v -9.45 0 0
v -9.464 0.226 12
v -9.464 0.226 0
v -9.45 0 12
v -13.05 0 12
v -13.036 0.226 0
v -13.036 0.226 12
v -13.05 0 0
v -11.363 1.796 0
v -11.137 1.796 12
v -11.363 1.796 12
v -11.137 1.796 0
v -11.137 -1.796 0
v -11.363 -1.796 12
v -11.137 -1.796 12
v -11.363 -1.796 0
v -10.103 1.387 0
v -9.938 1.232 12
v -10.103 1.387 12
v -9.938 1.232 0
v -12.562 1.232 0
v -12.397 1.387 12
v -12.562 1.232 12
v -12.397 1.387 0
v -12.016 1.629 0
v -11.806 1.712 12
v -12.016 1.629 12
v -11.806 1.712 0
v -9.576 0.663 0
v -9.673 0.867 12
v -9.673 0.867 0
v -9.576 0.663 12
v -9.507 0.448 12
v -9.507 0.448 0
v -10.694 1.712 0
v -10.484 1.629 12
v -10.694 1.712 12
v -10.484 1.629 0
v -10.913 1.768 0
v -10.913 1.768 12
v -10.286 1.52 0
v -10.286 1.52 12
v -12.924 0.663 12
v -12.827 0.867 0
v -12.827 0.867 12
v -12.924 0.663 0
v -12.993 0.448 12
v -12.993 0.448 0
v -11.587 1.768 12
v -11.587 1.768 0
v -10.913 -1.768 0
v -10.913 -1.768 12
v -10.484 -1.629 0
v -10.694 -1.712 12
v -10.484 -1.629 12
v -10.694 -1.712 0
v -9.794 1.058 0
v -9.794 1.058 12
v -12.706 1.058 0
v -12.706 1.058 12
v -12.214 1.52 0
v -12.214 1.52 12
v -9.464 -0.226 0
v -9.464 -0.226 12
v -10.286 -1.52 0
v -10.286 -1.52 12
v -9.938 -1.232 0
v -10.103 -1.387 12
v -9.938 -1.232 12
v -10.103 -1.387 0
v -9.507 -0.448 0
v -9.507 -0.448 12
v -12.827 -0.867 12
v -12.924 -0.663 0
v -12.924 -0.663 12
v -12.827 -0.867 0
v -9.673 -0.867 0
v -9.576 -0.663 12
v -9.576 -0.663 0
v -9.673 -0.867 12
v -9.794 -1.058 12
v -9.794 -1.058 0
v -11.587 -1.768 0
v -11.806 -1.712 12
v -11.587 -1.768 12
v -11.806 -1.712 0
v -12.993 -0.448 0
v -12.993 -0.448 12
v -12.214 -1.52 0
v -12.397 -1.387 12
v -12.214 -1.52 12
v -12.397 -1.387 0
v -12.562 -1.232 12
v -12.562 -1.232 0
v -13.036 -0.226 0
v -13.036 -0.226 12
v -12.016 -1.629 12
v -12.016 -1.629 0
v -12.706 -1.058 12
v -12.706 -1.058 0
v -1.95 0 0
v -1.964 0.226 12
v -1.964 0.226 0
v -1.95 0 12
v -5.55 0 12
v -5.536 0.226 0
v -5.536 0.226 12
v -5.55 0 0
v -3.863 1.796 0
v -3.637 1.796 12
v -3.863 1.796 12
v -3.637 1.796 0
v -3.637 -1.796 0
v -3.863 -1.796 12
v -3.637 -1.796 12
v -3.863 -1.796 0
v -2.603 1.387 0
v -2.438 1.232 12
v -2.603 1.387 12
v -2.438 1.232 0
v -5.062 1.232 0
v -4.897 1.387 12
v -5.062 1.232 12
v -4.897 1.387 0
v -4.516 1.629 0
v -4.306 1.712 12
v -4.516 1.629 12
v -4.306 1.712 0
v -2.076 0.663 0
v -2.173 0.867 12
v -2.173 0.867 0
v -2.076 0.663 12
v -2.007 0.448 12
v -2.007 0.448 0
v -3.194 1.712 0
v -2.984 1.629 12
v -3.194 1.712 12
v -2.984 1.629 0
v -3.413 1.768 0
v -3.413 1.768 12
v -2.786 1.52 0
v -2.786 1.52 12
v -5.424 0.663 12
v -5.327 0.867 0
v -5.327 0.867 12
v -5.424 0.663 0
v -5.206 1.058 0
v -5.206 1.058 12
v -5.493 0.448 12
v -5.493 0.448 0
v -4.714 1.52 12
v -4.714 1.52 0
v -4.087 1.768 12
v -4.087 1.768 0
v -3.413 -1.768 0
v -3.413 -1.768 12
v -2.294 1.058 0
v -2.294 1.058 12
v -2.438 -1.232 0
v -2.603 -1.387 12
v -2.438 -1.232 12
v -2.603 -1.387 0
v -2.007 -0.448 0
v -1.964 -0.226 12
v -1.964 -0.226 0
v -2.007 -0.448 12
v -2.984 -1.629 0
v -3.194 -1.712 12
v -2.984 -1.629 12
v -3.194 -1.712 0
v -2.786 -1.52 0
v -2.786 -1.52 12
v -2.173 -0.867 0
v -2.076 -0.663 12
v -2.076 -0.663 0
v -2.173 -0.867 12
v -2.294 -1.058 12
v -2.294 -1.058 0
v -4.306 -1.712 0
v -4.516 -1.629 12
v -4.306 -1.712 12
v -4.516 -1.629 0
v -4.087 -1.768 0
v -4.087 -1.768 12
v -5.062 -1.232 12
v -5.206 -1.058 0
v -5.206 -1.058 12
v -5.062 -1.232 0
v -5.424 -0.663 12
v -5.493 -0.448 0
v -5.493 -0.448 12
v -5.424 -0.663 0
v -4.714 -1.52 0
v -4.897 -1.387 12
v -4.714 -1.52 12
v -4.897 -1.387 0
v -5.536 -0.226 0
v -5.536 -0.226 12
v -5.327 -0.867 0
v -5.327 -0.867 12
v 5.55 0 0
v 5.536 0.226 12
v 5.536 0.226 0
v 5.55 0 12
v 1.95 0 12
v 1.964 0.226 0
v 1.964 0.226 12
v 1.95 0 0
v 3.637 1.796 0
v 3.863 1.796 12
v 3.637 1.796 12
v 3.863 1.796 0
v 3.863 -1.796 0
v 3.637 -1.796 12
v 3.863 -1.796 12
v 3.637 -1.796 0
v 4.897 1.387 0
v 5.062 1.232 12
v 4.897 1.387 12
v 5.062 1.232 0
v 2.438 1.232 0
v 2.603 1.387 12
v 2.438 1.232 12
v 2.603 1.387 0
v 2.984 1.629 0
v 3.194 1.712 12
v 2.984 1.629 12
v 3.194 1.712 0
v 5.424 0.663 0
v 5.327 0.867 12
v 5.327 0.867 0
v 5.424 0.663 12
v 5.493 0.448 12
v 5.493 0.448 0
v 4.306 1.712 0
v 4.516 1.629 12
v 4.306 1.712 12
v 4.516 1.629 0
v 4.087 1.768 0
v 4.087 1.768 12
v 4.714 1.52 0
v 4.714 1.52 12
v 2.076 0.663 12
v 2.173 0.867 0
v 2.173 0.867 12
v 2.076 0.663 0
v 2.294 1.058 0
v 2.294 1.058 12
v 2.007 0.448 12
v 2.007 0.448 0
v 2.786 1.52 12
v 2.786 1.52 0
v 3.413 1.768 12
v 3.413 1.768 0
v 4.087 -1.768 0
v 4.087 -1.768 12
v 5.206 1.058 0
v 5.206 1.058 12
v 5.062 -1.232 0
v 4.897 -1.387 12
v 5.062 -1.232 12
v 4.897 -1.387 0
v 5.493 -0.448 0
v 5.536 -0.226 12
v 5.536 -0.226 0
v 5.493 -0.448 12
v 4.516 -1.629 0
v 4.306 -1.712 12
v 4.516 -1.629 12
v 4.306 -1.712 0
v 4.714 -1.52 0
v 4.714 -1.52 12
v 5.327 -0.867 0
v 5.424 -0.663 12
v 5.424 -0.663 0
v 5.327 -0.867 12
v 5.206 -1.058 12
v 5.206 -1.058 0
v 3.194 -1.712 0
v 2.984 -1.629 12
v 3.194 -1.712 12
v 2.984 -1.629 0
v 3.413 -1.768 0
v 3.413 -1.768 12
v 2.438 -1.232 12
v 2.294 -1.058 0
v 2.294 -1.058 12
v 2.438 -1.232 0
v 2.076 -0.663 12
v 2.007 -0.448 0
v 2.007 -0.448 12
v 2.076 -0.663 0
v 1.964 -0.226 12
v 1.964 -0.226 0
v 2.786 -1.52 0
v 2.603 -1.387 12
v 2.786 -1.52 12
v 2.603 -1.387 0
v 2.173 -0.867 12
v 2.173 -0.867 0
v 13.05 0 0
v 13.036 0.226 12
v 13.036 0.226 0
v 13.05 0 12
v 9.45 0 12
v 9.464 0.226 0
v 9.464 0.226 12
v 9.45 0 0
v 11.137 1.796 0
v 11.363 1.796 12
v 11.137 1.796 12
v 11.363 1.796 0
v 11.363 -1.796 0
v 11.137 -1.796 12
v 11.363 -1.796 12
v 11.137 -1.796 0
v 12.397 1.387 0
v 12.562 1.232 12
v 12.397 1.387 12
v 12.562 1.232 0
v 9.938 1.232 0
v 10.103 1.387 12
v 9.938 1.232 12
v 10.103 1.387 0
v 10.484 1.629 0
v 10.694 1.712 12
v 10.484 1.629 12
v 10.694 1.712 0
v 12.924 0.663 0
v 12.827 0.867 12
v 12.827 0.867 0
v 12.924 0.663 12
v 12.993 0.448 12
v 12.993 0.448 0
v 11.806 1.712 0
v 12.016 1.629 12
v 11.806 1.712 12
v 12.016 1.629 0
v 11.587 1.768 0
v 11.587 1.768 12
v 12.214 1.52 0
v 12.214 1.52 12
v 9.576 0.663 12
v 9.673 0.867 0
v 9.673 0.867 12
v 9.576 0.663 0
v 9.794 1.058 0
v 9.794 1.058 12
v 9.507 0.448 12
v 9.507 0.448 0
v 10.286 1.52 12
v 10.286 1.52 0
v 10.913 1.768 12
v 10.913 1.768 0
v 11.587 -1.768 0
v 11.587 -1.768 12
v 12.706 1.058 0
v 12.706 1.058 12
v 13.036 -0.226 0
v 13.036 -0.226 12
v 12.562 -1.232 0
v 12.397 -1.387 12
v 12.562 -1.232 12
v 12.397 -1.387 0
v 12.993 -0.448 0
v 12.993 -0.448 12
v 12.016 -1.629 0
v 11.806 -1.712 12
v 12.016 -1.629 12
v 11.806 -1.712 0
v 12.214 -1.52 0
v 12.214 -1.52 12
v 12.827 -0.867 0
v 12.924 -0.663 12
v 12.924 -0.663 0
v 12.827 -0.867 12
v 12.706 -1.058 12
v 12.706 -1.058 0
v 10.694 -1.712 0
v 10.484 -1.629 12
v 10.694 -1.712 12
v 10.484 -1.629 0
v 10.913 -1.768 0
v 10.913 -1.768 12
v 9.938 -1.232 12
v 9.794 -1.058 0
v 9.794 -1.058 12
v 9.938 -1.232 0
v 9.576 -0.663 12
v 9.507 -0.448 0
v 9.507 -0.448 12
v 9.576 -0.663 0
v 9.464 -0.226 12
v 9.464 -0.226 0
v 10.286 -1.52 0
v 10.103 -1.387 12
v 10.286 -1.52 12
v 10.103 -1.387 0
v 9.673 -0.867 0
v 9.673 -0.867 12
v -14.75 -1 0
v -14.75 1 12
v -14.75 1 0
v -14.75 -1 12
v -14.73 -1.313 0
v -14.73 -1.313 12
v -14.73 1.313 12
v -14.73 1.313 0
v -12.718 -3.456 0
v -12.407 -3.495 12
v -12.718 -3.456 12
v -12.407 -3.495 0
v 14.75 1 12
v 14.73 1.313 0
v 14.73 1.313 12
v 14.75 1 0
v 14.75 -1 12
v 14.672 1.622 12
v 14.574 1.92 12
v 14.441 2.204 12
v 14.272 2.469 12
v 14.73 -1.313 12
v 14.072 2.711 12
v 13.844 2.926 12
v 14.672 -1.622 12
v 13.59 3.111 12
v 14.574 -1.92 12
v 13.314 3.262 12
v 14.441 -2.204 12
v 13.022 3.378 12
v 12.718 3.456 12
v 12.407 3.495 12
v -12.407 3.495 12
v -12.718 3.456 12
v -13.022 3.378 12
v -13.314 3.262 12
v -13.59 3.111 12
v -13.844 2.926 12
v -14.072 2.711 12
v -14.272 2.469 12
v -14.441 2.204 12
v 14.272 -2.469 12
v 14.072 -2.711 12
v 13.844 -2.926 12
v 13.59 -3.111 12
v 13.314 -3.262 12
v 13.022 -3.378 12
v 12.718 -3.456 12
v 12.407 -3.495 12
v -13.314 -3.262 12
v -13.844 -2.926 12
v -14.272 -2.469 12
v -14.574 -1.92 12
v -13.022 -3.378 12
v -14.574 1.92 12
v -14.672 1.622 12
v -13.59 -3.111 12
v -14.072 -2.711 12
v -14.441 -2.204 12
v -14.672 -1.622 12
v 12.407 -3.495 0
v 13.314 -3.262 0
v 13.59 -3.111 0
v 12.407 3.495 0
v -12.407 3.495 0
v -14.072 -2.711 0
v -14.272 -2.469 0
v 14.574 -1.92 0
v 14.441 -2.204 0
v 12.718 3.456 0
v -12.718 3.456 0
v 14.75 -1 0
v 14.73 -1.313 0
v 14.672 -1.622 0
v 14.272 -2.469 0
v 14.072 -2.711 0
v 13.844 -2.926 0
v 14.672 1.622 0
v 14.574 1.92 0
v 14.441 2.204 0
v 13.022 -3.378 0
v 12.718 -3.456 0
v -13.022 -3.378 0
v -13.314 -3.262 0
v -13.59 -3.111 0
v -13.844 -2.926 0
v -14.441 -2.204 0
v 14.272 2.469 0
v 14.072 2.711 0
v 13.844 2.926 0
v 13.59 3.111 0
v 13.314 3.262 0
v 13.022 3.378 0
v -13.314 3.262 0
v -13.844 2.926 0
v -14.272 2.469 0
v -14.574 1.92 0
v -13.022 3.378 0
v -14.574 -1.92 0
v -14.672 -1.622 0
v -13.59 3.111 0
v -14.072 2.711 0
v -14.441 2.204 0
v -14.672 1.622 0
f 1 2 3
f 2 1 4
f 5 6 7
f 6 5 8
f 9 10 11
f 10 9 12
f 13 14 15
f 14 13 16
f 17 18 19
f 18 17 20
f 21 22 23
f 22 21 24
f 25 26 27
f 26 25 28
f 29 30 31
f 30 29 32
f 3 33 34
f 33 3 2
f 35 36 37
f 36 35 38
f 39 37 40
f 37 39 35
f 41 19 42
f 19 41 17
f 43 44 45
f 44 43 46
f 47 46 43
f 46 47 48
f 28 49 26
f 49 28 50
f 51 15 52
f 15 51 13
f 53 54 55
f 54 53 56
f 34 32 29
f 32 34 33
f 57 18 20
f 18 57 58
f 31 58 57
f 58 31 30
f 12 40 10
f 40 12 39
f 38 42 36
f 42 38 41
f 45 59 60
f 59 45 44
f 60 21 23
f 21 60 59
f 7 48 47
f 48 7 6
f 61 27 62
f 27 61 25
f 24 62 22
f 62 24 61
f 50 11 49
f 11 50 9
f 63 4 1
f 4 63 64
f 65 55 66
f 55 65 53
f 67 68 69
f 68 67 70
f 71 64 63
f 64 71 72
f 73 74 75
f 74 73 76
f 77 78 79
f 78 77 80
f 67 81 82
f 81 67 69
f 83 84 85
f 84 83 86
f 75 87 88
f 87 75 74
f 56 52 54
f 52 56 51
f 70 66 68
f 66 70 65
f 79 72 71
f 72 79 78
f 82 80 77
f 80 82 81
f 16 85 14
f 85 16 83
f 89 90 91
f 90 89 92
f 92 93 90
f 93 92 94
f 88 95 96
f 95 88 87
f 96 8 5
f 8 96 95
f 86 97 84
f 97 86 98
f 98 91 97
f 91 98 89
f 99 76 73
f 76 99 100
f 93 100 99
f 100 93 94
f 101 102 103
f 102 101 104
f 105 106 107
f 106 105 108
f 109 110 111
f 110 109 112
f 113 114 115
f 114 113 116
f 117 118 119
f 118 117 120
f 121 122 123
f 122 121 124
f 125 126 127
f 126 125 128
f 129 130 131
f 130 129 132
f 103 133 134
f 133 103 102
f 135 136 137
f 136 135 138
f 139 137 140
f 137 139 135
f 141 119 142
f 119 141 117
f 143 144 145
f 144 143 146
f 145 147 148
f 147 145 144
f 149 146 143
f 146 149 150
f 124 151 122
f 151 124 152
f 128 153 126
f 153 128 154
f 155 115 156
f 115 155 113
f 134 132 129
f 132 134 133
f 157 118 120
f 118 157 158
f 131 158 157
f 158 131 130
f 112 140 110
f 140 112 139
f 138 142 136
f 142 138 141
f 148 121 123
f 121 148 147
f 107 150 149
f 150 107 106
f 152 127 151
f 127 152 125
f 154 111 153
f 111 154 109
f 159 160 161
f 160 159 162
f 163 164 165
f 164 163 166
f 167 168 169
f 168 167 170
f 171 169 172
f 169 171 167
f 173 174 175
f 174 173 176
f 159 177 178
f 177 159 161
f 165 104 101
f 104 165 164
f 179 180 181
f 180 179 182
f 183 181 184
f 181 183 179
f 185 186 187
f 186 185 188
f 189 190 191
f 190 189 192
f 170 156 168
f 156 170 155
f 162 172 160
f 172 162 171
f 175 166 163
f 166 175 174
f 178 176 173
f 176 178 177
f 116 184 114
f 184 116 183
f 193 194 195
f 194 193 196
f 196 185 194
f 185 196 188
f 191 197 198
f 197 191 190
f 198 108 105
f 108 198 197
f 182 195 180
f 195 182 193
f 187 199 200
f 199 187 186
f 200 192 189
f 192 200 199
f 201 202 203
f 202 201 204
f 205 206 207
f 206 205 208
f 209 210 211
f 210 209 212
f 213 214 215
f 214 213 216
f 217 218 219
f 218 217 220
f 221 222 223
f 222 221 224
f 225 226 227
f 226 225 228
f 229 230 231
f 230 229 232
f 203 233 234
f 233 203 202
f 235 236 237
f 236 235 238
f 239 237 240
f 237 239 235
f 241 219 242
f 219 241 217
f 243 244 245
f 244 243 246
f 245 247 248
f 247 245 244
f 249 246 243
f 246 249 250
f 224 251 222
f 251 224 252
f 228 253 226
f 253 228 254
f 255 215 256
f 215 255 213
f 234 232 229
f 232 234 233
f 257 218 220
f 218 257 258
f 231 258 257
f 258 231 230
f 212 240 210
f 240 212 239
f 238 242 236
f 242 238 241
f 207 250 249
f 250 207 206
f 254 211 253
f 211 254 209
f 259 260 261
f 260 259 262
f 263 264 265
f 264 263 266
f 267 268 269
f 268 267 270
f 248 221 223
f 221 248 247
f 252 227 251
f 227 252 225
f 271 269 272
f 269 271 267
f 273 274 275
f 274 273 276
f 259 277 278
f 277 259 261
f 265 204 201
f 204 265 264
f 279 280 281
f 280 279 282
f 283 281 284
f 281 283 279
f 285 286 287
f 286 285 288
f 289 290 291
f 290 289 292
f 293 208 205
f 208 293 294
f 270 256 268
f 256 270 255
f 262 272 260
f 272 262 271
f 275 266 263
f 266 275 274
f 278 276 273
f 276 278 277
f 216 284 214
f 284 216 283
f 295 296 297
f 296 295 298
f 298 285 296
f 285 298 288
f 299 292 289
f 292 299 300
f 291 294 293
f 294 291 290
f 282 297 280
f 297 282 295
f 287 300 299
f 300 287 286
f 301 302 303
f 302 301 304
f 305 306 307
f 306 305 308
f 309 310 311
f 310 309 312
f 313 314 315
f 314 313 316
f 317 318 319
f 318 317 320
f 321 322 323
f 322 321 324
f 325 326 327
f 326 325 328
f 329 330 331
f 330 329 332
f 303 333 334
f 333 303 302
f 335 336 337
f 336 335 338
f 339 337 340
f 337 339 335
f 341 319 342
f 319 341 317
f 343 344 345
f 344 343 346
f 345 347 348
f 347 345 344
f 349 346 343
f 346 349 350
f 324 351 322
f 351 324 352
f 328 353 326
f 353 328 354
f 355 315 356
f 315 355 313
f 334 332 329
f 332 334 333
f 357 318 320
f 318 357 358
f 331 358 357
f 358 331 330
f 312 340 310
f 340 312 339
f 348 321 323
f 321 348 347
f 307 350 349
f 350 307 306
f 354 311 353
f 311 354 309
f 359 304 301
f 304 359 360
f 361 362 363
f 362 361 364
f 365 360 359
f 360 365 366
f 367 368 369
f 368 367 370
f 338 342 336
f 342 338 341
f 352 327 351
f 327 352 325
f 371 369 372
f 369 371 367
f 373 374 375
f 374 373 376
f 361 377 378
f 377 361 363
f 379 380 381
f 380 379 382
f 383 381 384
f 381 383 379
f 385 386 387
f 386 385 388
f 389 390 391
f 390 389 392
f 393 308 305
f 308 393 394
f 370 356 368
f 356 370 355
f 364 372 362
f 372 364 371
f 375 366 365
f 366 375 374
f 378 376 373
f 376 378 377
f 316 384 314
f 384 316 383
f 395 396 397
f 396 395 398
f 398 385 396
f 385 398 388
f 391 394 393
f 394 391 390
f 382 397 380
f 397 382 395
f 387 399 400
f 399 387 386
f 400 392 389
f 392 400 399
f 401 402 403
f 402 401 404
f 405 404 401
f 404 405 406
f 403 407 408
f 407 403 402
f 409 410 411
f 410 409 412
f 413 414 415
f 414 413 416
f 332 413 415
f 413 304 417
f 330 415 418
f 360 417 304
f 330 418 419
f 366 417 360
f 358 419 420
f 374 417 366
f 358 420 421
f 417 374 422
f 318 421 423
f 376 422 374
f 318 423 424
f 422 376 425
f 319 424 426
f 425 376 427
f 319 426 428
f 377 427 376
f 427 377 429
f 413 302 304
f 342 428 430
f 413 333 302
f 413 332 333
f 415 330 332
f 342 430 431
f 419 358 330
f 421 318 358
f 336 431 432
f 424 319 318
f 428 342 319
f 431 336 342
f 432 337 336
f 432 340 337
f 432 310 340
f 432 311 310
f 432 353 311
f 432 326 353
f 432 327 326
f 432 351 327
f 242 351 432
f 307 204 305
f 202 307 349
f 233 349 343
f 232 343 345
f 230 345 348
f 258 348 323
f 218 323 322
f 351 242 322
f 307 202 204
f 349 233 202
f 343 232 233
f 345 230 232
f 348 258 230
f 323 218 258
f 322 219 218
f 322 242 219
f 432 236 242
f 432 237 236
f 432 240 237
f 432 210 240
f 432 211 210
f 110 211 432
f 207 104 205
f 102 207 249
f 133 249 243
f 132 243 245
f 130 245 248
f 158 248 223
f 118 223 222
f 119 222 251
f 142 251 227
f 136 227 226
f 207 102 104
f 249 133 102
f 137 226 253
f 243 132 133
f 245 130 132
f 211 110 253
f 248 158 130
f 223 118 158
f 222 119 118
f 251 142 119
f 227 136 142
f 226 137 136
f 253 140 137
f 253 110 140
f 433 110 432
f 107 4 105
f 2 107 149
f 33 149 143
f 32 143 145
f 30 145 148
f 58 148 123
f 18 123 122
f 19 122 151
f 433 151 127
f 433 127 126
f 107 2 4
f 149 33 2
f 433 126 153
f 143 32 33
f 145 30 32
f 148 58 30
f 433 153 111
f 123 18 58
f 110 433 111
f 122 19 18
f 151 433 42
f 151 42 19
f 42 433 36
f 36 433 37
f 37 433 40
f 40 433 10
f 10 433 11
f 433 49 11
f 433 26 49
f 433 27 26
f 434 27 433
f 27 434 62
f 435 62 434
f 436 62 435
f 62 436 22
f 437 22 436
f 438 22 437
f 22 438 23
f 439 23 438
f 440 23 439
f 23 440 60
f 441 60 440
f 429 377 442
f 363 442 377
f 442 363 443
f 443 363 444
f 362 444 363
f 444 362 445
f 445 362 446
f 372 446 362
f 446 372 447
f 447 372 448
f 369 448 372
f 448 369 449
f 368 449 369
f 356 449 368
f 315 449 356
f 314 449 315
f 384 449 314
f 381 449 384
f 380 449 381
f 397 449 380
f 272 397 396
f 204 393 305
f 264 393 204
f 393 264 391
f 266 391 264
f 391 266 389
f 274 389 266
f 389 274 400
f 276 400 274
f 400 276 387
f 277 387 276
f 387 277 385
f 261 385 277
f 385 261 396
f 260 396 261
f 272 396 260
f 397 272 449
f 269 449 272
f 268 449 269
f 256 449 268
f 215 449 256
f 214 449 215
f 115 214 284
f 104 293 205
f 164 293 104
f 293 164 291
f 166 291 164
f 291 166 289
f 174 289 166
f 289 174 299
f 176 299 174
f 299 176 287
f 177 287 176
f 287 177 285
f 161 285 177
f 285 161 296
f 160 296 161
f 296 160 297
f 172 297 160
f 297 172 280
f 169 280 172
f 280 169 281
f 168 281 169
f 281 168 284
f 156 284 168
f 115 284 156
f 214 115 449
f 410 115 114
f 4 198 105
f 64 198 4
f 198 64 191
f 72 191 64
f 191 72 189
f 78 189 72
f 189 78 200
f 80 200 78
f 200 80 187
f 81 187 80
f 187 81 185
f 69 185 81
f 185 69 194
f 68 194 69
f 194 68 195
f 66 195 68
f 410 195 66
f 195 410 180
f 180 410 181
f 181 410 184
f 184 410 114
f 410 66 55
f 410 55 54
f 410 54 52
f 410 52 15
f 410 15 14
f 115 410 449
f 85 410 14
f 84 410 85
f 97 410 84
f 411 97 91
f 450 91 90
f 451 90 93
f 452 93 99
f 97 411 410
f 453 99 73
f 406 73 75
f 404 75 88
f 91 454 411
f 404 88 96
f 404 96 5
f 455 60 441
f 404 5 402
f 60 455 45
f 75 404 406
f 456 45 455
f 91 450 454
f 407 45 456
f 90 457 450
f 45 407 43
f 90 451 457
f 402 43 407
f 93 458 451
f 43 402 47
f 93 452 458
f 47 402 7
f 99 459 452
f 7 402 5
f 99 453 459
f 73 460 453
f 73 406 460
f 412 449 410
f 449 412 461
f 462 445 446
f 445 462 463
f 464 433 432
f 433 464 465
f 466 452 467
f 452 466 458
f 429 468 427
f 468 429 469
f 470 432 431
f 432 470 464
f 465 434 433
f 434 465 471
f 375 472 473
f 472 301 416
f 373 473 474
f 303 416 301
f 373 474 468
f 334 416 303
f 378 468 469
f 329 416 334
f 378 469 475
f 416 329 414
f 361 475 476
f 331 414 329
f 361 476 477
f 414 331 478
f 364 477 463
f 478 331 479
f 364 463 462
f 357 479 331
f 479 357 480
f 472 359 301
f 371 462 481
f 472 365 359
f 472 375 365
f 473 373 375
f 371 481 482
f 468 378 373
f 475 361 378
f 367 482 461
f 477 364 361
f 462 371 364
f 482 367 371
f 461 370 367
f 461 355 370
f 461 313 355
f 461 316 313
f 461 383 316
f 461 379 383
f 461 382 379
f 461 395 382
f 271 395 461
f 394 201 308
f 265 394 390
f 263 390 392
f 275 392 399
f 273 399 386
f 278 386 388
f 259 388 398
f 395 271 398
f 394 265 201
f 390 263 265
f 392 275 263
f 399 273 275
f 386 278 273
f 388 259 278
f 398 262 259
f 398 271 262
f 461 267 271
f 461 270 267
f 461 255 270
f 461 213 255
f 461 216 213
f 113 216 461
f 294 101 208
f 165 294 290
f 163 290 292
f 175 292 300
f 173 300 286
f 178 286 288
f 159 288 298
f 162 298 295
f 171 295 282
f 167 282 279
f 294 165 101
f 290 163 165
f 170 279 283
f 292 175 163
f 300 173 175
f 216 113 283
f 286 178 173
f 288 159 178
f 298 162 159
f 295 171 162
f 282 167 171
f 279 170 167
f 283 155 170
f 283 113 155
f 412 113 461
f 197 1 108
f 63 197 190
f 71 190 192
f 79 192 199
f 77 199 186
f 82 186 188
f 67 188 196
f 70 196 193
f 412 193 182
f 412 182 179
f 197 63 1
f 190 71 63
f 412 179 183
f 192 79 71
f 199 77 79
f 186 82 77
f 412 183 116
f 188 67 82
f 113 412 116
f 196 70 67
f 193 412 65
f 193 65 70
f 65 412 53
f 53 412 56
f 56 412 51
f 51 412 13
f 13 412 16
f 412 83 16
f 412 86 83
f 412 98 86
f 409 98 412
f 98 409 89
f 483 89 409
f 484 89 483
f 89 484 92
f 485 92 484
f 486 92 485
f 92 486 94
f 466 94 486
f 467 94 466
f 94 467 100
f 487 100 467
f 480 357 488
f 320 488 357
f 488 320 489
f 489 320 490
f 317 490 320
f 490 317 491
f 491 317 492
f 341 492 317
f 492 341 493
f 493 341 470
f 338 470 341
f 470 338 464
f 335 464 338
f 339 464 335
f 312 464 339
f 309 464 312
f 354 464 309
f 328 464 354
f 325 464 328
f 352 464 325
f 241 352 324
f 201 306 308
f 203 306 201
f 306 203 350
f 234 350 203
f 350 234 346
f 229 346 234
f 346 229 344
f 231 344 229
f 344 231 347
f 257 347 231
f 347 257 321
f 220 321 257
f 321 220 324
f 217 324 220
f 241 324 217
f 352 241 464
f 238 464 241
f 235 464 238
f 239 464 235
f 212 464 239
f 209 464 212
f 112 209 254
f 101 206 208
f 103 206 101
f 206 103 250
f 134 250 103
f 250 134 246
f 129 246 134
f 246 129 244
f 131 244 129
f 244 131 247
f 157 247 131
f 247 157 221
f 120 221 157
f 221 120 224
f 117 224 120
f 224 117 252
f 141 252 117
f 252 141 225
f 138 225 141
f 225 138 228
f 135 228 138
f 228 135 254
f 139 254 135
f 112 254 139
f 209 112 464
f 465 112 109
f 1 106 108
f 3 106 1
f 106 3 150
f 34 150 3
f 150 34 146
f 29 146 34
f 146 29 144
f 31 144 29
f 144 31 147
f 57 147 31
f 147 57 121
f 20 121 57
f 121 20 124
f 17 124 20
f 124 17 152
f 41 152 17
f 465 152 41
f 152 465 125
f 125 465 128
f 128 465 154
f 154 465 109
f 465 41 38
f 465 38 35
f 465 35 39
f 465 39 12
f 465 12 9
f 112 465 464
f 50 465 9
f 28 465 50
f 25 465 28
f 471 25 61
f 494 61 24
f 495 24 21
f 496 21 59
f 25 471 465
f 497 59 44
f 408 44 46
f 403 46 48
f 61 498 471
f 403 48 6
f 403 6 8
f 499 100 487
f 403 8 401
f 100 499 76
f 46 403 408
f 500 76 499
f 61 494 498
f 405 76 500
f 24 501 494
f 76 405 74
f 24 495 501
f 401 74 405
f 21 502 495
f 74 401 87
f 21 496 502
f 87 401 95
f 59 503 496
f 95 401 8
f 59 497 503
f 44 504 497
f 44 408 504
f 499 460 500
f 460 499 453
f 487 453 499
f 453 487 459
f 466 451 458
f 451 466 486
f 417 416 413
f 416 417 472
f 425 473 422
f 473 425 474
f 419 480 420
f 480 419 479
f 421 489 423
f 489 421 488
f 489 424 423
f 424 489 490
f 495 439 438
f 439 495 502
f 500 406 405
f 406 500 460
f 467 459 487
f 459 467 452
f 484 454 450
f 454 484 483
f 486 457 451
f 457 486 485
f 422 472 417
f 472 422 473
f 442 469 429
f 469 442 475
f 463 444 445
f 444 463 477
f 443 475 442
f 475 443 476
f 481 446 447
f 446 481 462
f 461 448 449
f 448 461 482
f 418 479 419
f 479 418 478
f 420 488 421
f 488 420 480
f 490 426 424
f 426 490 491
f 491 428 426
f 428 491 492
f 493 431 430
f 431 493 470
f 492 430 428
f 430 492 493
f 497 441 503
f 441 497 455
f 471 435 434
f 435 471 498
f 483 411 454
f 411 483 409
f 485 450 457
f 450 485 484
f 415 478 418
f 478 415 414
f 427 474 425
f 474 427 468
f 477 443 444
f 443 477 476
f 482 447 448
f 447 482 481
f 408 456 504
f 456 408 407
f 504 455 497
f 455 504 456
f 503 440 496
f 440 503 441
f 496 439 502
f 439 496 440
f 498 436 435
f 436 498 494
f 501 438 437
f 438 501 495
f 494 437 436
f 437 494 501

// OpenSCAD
$fn = 50;


difference() {
	union() {
		translate(v = [0, 0, 0]) {
			rotate(a = [0, 0, 0]) {
				hull() {
					translate(v = [-12.2500000000, 1.0000000000, 0]) {
						rotate(a = [0, 0, 0]) {
							translate(v = [0, 0, 0]) {
								rotate(a = [0, 0, 0]) {
									cylinder(h = 12, r = 2.5000000000);
								}
							}
						}
					}
					translate(v = [12.2500000000, 1.0000000000, 0]) {
						rotate(a = [0, 0, 0]) {
							translate(v = [0, 0, 0]) {
								rotate(a = [0, 0, 0]) {
									cylinder(h = 12, r = 2.5000000000);
								}
							}
						}
					}
					translate(v = [-12.2500000000, -1.0000000000, 0]) {
						rotate(a = [0, 0, 0]) {
							translate(v = [0, 0, 0]) {
								rotate(a = [0, 0, 0]) {
									cylinder(h = 12, r = 2.5000000000);
								}
							}
						}
					}
					translate(v = [12.2500000000, -1.0000000000, 0]) {
						rotate(a = [0, 0, 0]) {
							translate(v = [0, 0, 0]) {
								rotate(a = [0, 0, 0]) {
									cylinder(h = 12, r = 2.5000000000);
								}
							}
						}
					}
				}
			}
		}
	}
	union() {
		translate(v = [-11.2500000000, 0.0000000000, 0]) {
			rotate(a = [0, 0, 0]) {
				translate(v = [0, 0, -50]) {
					rotate(a = [0, 0, 0]) {
						cylinder(h = 100, r = 1.8000000000);
					}
				}
			}
		}
		translate(v = [-3.7500000000, 0.0000000000, 0]) {
			rotate(a = [0, 0, 0]) {
				translate(v = [0, 0, -50]) {
					rotate(a = [0, 0, 0]) {
						cylinder(h = 100, r = 1.8000000000);
					}
				}
			}
		}
		translate(v = [3.7500000000, 0.0000000000, 0]) {
			rotate(a = [0, 0, 0]) {
				translate(v = [0, 0, -50]) {
					rotate(a = [0, 0, 0]) {
						cylinder(h = 100, r = 1.8000000000);
					}
				}
			}
		}
		translate(v = [11.2500000000, 0.0000000000, 0]) {
			rotate(a = [0, 0, 0]) {
				translate(v = [0, 0, -50]) {
					rotate(a = [0, 0, 0]) {
						cylinder(h = 100, r = 1.8000000000);
					}
				}
			}
		}
	}
}
